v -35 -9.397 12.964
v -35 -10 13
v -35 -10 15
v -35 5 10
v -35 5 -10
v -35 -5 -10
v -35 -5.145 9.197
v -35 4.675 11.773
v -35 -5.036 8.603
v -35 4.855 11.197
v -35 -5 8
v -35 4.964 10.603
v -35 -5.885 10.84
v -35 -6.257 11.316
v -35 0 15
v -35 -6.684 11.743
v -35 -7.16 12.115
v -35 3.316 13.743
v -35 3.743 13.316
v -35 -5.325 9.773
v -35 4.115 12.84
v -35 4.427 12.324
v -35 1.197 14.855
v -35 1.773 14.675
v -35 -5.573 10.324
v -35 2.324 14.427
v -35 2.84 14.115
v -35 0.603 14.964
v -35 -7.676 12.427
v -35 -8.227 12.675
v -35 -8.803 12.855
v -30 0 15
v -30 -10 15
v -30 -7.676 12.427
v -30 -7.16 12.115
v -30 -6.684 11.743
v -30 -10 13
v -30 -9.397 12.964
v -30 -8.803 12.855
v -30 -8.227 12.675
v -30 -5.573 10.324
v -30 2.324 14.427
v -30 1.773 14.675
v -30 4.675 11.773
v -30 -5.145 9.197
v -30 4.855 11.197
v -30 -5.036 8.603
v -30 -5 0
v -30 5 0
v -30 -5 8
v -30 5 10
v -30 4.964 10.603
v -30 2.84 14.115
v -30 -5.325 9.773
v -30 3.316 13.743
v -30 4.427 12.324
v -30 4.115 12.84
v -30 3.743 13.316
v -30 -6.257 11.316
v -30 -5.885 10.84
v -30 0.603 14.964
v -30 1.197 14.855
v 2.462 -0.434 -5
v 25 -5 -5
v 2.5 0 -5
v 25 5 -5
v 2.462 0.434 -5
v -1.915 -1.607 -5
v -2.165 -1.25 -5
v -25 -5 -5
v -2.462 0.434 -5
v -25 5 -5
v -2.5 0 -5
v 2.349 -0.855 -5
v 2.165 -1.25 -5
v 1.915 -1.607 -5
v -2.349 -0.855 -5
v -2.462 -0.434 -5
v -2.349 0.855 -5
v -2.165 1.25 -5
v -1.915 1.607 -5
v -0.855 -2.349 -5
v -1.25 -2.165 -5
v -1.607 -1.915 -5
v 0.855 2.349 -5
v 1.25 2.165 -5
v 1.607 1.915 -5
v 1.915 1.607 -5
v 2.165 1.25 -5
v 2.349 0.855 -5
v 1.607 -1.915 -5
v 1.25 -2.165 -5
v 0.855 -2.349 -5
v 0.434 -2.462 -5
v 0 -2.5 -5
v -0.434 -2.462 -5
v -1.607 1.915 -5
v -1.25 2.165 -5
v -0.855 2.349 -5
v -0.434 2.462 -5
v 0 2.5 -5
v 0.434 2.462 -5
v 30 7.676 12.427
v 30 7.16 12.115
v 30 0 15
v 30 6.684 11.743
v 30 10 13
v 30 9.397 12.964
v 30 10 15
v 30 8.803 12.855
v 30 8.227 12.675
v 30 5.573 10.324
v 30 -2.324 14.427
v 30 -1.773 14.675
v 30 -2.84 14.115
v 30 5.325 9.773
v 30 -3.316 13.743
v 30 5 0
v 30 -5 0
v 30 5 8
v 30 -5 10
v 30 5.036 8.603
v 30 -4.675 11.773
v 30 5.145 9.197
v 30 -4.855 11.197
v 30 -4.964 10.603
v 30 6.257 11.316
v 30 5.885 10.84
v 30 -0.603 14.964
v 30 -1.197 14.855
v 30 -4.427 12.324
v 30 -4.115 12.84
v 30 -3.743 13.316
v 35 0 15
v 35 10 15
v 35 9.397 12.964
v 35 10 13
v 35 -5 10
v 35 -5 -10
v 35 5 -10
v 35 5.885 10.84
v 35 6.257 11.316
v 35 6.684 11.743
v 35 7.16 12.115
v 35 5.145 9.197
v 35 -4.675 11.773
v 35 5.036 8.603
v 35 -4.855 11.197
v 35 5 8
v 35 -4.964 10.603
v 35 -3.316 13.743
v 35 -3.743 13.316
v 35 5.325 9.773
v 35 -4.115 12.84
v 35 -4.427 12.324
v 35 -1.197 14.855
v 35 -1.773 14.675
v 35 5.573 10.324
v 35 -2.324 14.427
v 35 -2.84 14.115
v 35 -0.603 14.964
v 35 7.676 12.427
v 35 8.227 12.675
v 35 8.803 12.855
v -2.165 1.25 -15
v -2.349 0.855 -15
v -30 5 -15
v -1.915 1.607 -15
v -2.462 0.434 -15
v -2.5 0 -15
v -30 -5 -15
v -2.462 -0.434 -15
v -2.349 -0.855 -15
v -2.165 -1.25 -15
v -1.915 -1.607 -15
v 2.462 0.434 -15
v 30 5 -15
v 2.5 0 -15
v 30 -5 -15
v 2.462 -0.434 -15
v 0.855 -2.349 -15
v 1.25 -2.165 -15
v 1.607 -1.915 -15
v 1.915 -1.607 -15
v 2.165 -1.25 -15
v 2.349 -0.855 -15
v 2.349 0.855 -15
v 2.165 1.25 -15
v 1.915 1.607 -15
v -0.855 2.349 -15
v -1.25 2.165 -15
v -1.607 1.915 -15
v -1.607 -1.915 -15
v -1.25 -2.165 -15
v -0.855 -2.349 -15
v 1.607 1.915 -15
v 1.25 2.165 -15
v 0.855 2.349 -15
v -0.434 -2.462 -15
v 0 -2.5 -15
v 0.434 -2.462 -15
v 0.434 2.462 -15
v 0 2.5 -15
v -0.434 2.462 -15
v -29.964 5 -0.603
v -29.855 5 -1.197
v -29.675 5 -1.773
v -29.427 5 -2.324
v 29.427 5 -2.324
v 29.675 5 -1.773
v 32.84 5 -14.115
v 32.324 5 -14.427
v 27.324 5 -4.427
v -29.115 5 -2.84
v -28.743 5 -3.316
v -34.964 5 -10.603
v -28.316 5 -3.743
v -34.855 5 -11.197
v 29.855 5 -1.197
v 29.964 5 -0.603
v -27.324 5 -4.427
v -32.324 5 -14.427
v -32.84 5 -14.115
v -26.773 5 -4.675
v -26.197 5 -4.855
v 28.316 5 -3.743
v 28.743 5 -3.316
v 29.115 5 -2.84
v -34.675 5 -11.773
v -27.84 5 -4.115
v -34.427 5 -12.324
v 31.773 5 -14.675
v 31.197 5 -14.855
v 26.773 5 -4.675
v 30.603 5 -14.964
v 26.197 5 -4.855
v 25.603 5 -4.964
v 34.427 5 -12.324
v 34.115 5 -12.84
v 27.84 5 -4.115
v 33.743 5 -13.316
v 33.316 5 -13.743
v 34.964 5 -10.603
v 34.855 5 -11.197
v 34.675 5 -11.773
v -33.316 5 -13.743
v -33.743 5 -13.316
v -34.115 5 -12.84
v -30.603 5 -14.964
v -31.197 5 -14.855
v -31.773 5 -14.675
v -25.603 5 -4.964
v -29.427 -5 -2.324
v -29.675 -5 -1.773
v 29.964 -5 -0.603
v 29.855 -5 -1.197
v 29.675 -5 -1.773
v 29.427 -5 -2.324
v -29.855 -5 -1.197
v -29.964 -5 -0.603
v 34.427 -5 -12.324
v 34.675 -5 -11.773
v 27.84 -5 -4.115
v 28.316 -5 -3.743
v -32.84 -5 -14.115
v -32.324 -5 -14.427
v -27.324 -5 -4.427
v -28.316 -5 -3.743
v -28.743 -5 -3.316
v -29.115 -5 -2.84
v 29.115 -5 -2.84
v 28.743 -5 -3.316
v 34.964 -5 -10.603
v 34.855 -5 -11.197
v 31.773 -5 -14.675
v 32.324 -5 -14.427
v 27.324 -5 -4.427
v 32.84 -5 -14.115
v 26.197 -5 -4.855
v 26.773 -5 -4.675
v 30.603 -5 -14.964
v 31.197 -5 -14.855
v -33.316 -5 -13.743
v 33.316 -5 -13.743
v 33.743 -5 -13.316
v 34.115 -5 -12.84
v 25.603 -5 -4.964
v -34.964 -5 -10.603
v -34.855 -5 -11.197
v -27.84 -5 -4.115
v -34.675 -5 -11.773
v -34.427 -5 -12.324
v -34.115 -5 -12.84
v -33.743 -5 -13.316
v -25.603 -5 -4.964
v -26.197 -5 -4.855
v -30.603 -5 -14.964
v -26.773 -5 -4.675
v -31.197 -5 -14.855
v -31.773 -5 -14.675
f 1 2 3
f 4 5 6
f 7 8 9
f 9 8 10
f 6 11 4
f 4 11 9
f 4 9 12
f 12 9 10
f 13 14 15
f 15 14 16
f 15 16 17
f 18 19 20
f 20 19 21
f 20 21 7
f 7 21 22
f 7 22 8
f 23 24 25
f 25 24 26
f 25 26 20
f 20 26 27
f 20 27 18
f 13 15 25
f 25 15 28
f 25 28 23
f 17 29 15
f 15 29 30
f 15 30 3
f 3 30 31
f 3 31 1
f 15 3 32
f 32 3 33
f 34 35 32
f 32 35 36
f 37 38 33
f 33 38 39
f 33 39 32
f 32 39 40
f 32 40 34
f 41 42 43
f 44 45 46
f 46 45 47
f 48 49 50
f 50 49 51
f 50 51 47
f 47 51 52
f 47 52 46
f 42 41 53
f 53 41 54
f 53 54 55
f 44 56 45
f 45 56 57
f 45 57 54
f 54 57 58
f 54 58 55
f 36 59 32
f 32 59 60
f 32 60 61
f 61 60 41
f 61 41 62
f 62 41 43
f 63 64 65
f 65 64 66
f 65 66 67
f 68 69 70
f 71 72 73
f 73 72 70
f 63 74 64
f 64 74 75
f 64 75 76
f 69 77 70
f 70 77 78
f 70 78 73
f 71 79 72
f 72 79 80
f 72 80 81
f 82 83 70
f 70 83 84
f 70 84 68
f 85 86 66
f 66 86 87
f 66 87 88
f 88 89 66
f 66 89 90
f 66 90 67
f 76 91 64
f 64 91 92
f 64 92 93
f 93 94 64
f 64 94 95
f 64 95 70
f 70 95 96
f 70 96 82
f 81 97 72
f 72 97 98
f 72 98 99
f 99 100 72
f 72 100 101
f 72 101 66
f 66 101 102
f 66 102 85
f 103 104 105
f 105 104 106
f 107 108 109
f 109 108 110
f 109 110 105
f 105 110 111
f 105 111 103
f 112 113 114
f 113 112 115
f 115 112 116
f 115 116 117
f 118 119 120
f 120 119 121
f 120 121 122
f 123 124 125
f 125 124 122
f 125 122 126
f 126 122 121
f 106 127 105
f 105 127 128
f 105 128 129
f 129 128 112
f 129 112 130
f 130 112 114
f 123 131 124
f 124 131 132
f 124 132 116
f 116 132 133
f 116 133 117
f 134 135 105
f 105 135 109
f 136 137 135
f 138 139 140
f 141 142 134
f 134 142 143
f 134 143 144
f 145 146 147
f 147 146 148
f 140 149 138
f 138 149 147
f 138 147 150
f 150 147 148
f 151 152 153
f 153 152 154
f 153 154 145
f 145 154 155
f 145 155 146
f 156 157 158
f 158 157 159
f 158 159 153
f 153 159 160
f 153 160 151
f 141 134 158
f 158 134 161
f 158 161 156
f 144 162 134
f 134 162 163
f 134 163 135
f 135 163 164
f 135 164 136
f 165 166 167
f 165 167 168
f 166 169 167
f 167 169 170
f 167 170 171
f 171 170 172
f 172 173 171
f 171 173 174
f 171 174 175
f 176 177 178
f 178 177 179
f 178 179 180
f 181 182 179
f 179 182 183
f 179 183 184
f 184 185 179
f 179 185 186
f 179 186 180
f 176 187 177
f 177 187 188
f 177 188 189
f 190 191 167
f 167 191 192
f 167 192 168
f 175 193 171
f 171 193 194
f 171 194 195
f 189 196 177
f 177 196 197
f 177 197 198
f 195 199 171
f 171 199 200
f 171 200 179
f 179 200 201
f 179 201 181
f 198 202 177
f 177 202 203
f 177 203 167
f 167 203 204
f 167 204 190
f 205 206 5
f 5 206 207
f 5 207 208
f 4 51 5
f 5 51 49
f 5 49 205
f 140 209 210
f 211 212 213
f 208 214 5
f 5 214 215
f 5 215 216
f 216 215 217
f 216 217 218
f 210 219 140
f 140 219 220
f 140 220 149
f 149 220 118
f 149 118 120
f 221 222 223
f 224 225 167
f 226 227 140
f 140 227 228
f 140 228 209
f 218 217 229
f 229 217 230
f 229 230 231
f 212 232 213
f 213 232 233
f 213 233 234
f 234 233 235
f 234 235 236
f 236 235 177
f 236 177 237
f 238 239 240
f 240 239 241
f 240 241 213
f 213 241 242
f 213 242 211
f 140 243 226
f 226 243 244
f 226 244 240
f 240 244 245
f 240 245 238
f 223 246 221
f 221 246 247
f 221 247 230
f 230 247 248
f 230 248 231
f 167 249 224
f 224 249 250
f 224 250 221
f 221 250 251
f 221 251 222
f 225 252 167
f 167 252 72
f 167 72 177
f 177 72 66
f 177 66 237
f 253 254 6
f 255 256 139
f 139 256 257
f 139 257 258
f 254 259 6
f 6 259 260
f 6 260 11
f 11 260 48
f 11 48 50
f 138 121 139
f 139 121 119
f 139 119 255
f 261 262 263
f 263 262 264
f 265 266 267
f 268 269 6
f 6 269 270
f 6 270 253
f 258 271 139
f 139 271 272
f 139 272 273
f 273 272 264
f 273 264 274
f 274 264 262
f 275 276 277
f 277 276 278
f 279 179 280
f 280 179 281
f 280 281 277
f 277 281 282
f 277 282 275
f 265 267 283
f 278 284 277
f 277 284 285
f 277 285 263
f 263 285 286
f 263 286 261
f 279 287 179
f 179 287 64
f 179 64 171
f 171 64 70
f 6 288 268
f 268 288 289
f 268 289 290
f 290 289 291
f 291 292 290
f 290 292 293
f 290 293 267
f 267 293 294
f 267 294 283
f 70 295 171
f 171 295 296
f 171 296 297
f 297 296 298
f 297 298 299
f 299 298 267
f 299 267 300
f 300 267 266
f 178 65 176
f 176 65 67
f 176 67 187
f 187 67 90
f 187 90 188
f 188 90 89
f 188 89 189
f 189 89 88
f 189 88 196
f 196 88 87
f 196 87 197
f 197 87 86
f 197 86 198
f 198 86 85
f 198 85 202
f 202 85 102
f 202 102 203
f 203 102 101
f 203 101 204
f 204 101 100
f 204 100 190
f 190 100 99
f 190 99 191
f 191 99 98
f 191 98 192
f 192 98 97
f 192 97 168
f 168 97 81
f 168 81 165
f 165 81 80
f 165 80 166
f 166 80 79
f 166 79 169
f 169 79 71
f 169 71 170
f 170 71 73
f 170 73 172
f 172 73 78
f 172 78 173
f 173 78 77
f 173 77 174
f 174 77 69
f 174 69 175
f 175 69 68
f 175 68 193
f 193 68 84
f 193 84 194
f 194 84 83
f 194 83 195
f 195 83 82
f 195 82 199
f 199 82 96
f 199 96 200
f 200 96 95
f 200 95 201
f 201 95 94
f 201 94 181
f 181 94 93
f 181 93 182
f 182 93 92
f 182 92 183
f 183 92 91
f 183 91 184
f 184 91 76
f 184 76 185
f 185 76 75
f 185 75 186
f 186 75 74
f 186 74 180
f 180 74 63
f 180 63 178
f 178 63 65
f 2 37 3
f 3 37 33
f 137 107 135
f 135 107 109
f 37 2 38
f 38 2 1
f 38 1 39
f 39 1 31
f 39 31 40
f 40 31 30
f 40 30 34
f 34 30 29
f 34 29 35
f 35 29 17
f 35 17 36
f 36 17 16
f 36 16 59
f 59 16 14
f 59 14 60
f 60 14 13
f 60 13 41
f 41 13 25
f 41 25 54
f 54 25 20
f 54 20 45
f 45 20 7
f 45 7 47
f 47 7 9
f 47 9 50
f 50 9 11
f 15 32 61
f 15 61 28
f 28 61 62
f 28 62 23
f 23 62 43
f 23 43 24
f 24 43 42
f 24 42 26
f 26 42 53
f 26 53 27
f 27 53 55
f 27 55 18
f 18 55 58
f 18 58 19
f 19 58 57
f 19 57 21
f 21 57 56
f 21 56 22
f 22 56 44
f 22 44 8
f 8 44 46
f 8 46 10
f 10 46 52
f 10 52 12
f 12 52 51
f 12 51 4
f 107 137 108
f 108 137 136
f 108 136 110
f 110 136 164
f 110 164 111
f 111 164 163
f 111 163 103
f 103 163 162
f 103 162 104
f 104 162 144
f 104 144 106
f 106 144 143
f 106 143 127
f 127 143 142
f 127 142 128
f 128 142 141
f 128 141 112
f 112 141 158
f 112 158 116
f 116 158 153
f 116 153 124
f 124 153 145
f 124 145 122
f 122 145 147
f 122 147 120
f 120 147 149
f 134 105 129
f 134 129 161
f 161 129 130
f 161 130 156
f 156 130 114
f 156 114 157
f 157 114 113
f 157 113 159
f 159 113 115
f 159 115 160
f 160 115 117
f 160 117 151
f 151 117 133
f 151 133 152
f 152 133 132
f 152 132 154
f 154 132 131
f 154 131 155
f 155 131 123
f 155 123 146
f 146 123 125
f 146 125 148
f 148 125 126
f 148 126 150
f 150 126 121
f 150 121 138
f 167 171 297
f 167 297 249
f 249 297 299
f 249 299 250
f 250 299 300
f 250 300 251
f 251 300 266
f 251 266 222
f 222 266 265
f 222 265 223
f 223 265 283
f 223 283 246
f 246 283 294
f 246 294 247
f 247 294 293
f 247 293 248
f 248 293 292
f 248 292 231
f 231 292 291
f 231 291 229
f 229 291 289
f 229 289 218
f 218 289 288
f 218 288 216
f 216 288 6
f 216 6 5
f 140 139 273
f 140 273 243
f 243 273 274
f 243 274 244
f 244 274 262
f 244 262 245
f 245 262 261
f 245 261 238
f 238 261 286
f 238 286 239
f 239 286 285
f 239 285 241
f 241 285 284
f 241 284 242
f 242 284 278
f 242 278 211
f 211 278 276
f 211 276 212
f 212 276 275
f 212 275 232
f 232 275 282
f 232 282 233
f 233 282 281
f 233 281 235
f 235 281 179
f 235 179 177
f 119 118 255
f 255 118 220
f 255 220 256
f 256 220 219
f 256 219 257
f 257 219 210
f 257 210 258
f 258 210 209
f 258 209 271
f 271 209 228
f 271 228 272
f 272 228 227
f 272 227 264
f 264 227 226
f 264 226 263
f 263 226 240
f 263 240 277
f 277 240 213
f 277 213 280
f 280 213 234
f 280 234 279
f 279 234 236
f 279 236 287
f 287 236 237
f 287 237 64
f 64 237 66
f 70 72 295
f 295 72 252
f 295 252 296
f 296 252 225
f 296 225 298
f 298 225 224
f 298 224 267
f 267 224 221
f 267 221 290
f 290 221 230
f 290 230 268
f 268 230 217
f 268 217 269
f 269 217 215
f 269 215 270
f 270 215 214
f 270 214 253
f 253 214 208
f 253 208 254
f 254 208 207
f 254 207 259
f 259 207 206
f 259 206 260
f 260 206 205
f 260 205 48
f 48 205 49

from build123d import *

# Parameters (mm, degrees)
BOSS_EXTRUDE1_DEPTH = 5
SKETCH2_R           = 2.5
CUT_EXTRUDE1_DEPTH  = 41.620192023
SKETCH3_W           = 5
SKETCH3_H           = 15
BOSS_EXTRUDE2_DEPTH = 2
FILLET1_START       = -35
FILLET1_DEPTH       = 5
FILLET1_START_2     = 30
FILLET1_2_DEPTH     = 5
FILLET1_START_3     = -5
FILLET1_3_DEPTH     = 10
FILLET1_4_DEPTH     = 5
FILLET1_5_DEPTH     = 5
FILLET1_6_DEPTH     = 10


with BuildPart() as part:
    # Sketch1 → Boss-Extrude1 (new, symmetric)
    with BuildSketch(Plane(origin=(0, 0, 0), x_dir=(1, 0, 0), z_dir=(0, 1, 0))):
        Polygon((-35, 15), (35, 15), (35, -15), (30, -15), (30, 5), (-30, 5), (-30, -15), (-35, -15), align=None)
    extrude(amount=BOSS_EXTRUDE1_DEPTH, both=True)

    # Sketch2 → Cut-Extrude1 (cut, through all)
    with BuildSketch(Plane.XY.offset(-5)):
        Circle(SKETCH2_R)
    extrude(amount=-CUT_EXTRUDE1_DEPTH, mode=Mode.SUBTRACT)

    # Sketch3 → Boss-Extrude2 (add)
    with BuildSketch(Plane.XY.offset(15)):
        with Locations((-32.5, -2.5)):
            Rectangle(SKETCH3_W, SKETCH3_H)
        with Locations((32.5, 2.5)):
            Rectangle(SKETCH3_W, SKETCH3_H)
    extrude(amount=-BOSS_EXTRUDE2_DEPTH)

    # Fillet1: read off the stored shape, not the designer's step
    # Fillet1 outline → Fillet1 (add)
    with BuildSketch(Plane.YZ.offset(FILLET1_START)):
        with BuildLine():
            Line((-5, 13), (-10, 13))
            ThreePointArc((-10, 13), (-6.464466094, 11.535533906), (-5, 8))
            Line((-5, 8), (-5, 13))
        make_face()
    extrude(amount=FILLET1_DEPTH)

    # Fillet1 2 outline → Fillet1 2 (add)
    with BuildSketch(Plane.YZ.offset(FILLET1_START_2)):
        with BuildLine():
            Line((5, 13), (5, 8))
            ThreePointArc((5, 8), (6.464466094, 11.535533906), (10, 13))
            Line((10, 13), (5, 13))
        make_face()
    extrude(amount=FILLET1_2_DEPTH)

    # Fillet1 3 outline → Fillet1 3 (add)
    with BuildSketch(Plane(origin=(0, 0, 0), x_dir=(1, 0, 0), z_dir=(0, 1, 0)).offset(FILLET1_START_3)):
        with BuildLine():
            Line((-30, 5), (-30, 0))
            ThreePointArc((-30, 0), (-28.535533906, 3.535533906), (-25, 5))
            Line((-25, 5), (-30, 5))
        make_face()
        with BuildLine():
            Line((30, 5), (25, 5))
            ThreePointArc((25, 5), (28.535533906, 3.535533906), (30, 0))
            Line((30, 0), (30, 5))
        make_face()
    extrude(amount=FILLET1_3_DEPTH)

    # Fillet1 4 outline → Fillet1 4 (cut)
    with BuildSketch(Plane.YZ.offset(FILLET1_START)):
        with BuildLine():
            Line((5, 15), (0, 15))
            ThreePointArc((0, 15), (3.535533906, 13.535533906), (5, 10))
            Line((5, 10), (5, 15))
        make_face()
    extrude(amount=FILLET1_4_DEPTH, mode=Mode.SUBTRACT)

    # Fillet1 5 outline → Fillet1 5 (cut)
    with BuildSketch(Plane.YZ.offset(FILLET1_START_2)):
        with BuildLine():
            Line((-5, 15), (-5, 10))
            ThreePointArc((-5, 10), (-3.535533906, 13.535533906), (0, 15))
            Line((0, 15), (-5, 15))
        make_face()
    extrude(amount=FILLET1_5_DEPTH, mode=Mode.SUBTRACT)

    # Fillet1 6 outline → Fillet1 6 (cut)
    with BuildSketch(Plane(origin=(0, 0, 0), x_dir=(1, 0, 0), z_dir=(0, 1, 0)).offset(FILLET1_START_3)):
        with BuildLine():
            Line((-35, 15), (-35, 10))
            ThreePointArc((-35, 10), (-33.535533906, 13.535533906), (-30, 15))
            Line((-30, 15), (-35, 15))
        make_face()
        with BuildLine():
            Line((35, 15), (30, 15))
            ThreePointArc((30, 15), (33.535533906, 13.535533906), (35, 10))
            Line((35, 10), (35, 15))
        make_face()
    extrude(amount=FILLET1_6_DEPTH, mode=Mode.SUBTRACT)


solid = part.part
